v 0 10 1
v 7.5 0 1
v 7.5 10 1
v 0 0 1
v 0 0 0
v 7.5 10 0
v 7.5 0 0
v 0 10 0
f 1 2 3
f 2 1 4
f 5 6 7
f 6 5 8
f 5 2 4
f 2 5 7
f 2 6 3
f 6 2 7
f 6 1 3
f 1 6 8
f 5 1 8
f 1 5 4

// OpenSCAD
/* Warning, this is a very basic generator with a lot of approximation 
input data : [VQFN, 5RC, 7.5x10x1.0mm, 52, , A, C04-25455A]
generated by com.zoubworld.electronics.cad.model3d.Basic
Date : Sun Feb 15 10:50:49 CET 2026
*/

//body
color("black")
translate([0,0,0])
cube([7.5,10.0,1.0], center=false);
